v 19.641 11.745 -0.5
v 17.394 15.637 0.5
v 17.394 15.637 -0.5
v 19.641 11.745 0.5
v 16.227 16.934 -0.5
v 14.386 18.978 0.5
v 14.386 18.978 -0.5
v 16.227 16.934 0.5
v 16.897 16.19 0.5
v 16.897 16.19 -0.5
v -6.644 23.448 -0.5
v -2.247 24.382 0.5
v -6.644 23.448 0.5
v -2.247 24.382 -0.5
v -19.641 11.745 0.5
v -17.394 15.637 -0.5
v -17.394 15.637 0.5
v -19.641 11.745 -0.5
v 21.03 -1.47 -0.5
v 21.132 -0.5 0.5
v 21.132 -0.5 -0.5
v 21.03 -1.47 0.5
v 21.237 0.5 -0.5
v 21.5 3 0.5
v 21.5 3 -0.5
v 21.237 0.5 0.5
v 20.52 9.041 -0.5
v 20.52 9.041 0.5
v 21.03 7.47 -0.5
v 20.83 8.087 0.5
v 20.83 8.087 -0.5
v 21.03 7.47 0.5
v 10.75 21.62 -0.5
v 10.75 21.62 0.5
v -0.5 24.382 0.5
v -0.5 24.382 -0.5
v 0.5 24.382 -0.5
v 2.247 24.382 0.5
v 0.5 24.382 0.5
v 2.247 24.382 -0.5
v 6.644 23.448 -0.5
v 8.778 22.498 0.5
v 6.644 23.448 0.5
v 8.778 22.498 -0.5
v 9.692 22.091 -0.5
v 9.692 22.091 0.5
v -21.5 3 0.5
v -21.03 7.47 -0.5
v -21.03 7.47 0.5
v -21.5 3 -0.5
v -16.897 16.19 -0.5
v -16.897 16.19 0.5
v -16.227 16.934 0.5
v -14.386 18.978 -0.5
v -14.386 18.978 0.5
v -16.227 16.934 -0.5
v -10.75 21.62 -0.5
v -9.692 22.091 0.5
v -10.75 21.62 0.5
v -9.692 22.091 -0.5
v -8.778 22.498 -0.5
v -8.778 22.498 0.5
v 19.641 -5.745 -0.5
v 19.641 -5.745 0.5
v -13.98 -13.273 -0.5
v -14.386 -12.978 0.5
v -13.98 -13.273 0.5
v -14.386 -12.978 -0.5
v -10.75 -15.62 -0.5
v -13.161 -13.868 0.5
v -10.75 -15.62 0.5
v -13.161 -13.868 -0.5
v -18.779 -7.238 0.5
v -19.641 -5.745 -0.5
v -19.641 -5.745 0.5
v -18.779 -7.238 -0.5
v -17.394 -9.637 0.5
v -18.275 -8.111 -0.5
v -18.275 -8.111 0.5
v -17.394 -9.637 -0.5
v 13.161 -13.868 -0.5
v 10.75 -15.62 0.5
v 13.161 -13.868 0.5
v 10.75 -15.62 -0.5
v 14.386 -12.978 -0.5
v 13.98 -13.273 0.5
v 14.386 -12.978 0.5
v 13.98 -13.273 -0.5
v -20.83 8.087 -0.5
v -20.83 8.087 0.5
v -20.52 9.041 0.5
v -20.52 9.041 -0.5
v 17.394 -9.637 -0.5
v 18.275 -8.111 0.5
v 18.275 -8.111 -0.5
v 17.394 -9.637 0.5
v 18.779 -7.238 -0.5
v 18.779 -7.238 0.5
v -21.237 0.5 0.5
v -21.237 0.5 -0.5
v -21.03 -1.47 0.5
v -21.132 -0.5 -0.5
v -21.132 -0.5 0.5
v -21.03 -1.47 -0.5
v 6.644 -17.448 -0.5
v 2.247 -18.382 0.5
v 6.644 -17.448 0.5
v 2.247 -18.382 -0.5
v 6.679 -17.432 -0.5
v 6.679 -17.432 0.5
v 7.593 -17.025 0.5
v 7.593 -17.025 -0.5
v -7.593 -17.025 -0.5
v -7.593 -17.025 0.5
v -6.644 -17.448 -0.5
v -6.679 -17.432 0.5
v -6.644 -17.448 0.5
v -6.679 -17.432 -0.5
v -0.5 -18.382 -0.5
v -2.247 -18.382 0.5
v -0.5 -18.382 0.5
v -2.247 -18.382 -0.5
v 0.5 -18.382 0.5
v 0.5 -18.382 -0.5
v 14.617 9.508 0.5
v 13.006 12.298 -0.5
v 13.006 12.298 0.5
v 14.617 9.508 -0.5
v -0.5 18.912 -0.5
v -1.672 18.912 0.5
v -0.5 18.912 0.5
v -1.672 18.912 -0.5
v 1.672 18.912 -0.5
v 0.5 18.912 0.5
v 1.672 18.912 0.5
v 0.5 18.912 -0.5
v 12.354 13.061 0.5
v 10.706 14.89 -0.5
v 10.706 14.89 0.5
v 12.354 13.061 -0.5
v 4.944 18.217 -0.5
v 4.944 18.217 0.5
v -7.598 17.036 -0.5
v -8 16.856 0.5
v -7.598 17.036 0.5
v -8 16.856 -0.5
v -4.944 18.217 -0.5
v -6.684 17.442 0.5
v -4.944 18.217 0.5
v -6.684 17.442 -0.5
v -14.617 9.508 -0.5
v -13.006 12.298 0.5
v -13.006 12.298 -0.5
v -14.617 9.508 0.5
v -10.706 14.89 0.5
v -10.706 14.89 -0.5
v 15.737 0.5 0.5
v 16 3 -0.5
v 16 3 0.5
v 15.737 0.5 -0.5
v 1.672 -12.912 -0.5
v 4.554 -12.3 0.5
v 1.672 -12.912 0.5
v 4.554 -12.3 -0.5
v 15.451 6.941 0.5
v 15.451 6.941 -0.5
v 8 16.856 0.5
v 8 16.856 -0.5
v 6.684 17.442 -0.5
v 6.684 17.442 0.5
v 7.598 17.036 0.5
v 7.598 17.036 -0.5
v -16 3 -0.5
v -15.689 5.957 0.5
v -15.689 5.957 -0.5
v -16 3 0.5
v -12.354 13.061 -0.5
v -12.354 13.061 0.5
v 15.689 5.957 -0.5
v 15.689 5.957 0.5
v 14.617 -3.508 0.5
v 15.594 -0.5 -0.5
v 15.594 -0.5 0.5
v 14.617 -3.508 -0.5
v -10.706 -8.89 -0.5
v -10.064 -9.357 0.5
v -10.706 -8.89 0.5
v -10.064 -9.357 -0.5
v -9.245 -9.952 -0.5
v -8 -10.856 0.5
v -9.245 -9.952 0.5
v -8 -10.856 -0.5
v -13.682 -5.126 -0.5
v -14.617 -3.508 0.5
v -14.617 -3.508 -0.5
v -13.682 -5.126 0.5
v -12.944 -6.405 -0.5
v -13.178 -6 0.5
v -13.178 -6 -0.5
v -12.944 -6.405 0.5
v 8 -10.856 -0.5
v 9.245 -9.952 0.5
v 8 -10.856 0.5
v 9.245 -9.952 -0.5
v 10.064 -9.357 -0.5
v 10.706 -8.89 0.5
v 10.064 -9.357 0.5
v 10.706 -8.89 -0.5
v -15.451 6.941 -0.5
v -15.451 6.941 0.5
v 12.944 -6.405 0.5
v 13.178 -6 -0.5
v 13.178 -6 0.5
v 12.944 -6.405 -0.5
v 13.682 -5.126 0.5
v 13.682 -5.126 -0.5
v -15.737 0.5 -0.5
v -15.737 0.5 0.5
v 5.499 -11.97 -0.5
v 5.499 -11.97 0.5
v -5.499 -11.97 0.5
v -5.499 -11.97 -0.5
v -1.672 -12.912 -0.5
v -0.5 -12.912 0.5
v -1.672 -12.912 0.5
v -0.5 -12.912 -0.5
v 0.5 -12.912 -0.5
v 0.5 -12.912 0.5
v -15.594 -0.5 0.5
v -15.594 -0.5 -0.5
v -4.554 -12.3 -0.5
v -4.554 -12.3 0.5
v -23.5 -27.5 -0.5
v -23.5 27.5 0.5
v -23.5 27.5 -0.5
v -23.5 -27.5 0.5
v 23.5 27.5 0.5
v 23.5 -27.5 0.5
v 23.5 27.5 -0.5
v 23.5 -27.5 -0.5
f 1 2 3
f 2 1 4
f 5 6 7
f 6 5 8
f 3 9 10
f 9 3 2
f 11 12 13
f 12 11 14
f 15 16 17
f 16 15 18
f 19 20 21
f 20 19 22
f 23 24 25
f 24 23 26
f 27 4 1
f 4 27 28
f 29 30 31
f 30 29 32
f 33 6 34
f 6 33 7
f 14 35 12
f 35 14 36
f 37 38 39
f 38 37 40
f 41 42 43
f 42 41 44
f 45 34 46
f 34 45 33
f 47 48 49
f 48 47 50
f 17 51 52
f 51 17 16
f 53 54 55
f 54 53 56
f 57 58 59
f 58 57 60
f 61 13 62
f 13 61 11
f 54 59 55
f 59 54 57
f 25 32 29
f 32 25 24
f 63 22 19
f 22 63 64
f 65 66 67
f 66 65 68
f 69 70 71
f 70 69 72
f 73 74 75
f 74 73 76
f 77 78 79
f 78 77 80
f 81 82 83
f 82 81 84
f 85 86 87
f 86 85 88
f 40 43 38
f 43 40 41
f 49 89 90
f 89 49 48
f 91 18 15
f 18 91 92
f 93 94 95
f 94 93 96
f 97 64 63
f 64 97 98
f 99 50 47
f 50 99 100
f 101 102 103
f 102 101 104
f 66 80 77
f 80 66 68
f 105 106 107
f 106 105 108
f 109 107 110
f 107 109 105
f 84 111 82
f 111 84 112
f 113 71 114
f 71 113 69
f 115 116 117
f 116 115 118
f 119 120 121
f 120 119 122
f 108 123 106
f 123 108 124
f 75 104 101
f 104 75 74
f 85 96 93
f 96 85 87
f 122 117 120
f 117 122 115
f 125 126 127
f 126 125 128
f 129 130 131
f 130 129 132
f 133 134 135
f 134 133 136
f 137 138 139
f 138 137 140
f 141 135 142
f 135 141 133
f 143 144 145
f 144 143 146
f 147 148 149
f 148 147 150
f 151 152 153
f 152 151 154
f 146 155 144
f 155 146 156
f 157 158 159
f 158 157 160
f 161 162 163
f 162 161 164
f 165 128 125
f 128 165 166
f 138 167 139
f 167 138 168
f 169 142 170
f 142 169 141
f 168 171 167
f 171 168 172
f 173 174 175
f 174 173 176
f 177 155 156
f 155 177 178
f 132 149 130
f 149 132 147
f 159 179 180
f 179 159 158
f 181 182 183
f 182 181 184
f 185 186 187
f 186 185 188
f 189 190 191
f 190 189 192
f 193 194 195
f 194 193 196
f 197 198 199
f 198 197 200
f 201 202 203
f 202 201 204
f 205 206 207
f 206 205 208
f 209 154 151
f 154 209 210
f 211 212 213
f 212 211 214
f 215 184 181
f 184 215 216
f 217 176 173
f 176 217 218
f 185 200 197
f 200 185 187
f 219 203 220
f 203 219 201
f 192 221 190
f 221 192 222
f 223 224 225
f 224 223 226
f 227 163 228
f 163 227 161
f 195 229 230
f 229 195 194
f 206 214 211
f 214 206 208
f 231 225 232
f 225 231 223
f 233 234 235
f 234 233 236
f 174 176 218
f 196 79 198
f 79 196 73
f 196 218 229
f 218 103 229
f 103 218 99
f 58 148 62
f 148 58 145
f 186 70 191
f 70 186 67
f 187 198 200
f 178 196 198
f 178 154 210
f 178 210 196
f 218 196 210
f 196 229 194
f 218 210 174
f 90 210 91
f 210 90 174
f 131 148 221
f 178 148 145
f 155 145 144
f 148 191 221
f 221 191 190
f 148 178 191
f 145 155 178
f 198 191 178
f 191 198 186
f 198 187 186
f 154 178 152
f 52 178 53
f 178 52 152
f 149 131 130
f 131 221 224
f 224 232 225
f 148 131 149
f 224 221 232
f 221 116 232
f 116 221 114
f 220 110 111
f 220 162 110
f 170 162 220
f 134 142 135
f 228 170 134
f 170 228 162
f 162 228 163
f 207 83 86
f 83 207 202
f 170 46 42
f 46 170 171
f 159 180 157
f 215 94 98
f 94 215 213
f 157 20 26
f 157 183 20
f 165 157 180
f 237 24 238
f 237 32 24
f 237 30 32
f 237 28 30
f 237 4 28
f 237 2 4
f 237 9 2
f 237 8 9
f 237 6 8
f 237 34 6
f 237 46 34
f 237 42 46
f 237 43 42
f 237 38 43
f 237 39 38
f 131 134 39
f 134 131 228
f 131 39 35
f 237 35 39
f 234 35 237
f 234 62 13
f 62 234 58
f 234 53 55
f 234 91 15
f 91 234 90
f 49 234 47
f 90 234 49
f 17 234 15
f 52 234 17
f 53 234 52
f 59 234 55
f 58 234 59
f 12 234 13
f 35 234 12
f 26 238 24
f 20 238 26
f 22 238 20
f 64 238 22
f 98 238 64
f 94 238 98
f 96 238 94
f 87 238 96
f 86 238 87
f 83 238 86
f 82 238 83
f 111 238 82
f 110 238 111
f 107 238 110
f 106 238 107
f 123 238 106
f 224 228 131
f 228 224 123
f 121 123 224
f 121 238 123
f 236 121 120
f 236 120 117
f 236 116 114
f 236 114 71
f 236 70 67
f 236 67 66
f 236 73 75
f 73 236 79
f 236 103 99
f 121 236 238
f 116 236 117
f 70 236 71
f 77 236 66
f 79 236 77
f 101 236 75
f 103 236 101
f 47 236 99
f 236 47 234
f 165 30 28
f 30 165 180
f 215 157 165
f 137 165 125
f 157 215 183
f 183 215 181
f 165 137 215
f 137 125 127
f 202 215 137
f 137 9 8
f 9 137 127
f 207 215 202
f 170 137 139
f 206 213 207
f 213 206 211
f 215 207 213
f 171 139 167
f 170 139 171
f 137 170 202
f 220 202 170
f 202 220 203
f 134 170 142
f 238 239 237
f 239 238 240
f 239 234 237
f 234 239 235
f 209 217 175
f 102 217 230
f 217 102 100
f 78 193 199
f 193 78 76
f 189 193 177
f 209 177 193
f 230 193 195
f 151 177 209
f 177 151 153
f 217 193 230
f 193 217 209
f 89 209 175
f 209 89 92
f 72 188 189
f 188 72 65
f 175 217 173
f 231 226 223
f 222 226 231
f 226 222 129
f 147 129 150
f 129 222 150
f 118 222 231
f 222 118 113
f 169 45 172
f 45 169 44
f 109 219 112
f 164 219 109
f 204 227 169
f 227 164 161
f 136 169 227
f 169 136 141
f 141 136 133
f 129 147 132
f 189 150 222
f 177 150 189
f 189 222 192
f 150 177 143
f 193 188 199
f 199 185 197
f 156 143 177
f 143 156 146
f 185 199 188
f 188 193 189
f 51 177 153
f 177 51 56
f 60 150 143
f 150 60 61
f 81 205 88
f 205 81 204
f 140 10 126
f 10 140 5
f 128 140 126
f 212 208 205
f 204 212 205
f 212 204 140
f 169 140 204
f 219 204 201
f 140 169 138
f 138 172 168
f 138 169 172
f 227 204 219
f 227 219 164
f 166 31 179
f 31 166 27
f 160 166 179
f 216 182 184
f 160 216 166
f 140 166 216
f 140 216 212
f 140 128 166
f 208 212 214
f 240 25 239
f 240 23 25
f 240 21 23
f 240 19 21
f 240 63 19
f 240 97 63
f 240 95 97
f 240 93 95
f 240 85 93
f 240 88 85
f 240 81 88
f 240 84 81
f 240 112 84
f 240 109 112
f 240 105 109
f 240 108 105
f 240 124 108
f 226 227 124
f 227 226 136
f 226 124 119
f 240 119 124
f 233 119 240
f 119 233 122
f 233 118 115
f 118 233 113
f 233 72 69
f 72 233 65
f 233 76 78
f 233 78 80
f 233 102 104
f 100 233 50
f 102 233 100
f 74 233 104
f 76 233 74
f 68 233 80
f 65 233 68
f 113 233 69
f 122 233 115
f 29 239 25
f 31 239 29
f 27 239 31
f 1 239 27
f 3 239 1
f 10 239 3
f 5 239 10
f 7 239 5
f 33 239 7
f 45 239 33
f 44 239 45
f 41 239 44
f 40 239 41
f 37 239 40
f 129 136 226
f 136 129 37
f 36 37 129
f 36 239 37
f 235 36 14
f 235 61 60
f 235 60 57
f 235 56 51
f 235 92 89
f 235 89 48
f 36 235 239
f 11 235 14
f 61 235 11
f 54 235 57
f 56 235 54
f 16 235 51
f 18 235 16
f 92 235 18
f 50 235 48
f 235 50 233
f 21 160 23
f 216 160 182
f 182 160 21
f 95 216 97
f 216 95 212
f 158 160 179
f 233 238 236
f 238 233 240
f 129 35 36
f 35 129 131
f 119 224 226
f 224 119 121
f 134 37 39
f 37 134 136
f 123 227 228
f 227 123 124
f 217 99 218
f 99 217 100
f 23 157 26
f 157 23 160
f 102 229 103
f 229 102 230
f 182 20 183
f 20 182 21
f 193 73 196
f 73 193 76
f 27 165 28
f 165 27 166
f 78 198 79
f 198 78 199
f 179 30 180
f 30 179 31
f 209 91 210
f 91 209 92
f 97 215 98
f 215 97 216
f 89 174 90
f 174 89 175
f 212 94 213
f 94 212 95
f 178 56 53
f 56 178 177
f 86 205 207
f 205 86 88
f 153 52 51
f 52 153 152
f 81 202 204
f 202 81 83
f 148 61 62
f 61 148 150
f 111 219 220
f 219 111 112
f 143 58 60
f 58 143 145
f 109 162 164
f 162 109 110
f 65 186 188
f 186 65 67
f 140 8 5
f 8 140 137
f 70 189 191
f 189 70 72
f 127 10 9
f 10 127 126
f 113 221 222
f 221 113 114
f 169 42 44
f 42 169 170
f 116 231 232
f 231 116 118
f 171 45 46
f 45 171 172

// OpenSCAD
total_internal_height = 1;
total_internal_width = 47;
total_internal_length = 55;

distance_from_edge = 3;

inner_d = 32;
outer_d = 43;


module ring(inner_diameter, outer_diameter){
    difference(){
        cylinder(d=outer_diameter, h=total_internal_height+1, center=true);
        cylinder(d=inner_diameter, h=total_internal_height+1, center=true);
    }
}

difference(){
    cube([total_internal_width,total_internal_length,total_internal_height], center=true);
    translate([0,total_internal_length/2 - outer_d/2 - distance_from_edge,0]) ring(inner_d,outer_d);
}

cube([1,50,total_internal_height], center=true);
rotate([0,0,90]) cube([1,45,total_internal_height], center=true);
rotate([0,0,112.5]) cube([1,49,total_internal_height], center=true);
rotate([0,0,-112.5]) cube([1,49,total_internal_height], center=true);
rotate([0,0,45]) cube([1,49,total_internal_height], center=true);
rotate([0,0,22.5]) cube([1,49,total_internal_height], center=true);
rotate([0,0,-45]) cube([1,49,total_internal_height], center=true);
rotate([0,0,-22.5]) cube([1,49,total_internal_height], center=true);
